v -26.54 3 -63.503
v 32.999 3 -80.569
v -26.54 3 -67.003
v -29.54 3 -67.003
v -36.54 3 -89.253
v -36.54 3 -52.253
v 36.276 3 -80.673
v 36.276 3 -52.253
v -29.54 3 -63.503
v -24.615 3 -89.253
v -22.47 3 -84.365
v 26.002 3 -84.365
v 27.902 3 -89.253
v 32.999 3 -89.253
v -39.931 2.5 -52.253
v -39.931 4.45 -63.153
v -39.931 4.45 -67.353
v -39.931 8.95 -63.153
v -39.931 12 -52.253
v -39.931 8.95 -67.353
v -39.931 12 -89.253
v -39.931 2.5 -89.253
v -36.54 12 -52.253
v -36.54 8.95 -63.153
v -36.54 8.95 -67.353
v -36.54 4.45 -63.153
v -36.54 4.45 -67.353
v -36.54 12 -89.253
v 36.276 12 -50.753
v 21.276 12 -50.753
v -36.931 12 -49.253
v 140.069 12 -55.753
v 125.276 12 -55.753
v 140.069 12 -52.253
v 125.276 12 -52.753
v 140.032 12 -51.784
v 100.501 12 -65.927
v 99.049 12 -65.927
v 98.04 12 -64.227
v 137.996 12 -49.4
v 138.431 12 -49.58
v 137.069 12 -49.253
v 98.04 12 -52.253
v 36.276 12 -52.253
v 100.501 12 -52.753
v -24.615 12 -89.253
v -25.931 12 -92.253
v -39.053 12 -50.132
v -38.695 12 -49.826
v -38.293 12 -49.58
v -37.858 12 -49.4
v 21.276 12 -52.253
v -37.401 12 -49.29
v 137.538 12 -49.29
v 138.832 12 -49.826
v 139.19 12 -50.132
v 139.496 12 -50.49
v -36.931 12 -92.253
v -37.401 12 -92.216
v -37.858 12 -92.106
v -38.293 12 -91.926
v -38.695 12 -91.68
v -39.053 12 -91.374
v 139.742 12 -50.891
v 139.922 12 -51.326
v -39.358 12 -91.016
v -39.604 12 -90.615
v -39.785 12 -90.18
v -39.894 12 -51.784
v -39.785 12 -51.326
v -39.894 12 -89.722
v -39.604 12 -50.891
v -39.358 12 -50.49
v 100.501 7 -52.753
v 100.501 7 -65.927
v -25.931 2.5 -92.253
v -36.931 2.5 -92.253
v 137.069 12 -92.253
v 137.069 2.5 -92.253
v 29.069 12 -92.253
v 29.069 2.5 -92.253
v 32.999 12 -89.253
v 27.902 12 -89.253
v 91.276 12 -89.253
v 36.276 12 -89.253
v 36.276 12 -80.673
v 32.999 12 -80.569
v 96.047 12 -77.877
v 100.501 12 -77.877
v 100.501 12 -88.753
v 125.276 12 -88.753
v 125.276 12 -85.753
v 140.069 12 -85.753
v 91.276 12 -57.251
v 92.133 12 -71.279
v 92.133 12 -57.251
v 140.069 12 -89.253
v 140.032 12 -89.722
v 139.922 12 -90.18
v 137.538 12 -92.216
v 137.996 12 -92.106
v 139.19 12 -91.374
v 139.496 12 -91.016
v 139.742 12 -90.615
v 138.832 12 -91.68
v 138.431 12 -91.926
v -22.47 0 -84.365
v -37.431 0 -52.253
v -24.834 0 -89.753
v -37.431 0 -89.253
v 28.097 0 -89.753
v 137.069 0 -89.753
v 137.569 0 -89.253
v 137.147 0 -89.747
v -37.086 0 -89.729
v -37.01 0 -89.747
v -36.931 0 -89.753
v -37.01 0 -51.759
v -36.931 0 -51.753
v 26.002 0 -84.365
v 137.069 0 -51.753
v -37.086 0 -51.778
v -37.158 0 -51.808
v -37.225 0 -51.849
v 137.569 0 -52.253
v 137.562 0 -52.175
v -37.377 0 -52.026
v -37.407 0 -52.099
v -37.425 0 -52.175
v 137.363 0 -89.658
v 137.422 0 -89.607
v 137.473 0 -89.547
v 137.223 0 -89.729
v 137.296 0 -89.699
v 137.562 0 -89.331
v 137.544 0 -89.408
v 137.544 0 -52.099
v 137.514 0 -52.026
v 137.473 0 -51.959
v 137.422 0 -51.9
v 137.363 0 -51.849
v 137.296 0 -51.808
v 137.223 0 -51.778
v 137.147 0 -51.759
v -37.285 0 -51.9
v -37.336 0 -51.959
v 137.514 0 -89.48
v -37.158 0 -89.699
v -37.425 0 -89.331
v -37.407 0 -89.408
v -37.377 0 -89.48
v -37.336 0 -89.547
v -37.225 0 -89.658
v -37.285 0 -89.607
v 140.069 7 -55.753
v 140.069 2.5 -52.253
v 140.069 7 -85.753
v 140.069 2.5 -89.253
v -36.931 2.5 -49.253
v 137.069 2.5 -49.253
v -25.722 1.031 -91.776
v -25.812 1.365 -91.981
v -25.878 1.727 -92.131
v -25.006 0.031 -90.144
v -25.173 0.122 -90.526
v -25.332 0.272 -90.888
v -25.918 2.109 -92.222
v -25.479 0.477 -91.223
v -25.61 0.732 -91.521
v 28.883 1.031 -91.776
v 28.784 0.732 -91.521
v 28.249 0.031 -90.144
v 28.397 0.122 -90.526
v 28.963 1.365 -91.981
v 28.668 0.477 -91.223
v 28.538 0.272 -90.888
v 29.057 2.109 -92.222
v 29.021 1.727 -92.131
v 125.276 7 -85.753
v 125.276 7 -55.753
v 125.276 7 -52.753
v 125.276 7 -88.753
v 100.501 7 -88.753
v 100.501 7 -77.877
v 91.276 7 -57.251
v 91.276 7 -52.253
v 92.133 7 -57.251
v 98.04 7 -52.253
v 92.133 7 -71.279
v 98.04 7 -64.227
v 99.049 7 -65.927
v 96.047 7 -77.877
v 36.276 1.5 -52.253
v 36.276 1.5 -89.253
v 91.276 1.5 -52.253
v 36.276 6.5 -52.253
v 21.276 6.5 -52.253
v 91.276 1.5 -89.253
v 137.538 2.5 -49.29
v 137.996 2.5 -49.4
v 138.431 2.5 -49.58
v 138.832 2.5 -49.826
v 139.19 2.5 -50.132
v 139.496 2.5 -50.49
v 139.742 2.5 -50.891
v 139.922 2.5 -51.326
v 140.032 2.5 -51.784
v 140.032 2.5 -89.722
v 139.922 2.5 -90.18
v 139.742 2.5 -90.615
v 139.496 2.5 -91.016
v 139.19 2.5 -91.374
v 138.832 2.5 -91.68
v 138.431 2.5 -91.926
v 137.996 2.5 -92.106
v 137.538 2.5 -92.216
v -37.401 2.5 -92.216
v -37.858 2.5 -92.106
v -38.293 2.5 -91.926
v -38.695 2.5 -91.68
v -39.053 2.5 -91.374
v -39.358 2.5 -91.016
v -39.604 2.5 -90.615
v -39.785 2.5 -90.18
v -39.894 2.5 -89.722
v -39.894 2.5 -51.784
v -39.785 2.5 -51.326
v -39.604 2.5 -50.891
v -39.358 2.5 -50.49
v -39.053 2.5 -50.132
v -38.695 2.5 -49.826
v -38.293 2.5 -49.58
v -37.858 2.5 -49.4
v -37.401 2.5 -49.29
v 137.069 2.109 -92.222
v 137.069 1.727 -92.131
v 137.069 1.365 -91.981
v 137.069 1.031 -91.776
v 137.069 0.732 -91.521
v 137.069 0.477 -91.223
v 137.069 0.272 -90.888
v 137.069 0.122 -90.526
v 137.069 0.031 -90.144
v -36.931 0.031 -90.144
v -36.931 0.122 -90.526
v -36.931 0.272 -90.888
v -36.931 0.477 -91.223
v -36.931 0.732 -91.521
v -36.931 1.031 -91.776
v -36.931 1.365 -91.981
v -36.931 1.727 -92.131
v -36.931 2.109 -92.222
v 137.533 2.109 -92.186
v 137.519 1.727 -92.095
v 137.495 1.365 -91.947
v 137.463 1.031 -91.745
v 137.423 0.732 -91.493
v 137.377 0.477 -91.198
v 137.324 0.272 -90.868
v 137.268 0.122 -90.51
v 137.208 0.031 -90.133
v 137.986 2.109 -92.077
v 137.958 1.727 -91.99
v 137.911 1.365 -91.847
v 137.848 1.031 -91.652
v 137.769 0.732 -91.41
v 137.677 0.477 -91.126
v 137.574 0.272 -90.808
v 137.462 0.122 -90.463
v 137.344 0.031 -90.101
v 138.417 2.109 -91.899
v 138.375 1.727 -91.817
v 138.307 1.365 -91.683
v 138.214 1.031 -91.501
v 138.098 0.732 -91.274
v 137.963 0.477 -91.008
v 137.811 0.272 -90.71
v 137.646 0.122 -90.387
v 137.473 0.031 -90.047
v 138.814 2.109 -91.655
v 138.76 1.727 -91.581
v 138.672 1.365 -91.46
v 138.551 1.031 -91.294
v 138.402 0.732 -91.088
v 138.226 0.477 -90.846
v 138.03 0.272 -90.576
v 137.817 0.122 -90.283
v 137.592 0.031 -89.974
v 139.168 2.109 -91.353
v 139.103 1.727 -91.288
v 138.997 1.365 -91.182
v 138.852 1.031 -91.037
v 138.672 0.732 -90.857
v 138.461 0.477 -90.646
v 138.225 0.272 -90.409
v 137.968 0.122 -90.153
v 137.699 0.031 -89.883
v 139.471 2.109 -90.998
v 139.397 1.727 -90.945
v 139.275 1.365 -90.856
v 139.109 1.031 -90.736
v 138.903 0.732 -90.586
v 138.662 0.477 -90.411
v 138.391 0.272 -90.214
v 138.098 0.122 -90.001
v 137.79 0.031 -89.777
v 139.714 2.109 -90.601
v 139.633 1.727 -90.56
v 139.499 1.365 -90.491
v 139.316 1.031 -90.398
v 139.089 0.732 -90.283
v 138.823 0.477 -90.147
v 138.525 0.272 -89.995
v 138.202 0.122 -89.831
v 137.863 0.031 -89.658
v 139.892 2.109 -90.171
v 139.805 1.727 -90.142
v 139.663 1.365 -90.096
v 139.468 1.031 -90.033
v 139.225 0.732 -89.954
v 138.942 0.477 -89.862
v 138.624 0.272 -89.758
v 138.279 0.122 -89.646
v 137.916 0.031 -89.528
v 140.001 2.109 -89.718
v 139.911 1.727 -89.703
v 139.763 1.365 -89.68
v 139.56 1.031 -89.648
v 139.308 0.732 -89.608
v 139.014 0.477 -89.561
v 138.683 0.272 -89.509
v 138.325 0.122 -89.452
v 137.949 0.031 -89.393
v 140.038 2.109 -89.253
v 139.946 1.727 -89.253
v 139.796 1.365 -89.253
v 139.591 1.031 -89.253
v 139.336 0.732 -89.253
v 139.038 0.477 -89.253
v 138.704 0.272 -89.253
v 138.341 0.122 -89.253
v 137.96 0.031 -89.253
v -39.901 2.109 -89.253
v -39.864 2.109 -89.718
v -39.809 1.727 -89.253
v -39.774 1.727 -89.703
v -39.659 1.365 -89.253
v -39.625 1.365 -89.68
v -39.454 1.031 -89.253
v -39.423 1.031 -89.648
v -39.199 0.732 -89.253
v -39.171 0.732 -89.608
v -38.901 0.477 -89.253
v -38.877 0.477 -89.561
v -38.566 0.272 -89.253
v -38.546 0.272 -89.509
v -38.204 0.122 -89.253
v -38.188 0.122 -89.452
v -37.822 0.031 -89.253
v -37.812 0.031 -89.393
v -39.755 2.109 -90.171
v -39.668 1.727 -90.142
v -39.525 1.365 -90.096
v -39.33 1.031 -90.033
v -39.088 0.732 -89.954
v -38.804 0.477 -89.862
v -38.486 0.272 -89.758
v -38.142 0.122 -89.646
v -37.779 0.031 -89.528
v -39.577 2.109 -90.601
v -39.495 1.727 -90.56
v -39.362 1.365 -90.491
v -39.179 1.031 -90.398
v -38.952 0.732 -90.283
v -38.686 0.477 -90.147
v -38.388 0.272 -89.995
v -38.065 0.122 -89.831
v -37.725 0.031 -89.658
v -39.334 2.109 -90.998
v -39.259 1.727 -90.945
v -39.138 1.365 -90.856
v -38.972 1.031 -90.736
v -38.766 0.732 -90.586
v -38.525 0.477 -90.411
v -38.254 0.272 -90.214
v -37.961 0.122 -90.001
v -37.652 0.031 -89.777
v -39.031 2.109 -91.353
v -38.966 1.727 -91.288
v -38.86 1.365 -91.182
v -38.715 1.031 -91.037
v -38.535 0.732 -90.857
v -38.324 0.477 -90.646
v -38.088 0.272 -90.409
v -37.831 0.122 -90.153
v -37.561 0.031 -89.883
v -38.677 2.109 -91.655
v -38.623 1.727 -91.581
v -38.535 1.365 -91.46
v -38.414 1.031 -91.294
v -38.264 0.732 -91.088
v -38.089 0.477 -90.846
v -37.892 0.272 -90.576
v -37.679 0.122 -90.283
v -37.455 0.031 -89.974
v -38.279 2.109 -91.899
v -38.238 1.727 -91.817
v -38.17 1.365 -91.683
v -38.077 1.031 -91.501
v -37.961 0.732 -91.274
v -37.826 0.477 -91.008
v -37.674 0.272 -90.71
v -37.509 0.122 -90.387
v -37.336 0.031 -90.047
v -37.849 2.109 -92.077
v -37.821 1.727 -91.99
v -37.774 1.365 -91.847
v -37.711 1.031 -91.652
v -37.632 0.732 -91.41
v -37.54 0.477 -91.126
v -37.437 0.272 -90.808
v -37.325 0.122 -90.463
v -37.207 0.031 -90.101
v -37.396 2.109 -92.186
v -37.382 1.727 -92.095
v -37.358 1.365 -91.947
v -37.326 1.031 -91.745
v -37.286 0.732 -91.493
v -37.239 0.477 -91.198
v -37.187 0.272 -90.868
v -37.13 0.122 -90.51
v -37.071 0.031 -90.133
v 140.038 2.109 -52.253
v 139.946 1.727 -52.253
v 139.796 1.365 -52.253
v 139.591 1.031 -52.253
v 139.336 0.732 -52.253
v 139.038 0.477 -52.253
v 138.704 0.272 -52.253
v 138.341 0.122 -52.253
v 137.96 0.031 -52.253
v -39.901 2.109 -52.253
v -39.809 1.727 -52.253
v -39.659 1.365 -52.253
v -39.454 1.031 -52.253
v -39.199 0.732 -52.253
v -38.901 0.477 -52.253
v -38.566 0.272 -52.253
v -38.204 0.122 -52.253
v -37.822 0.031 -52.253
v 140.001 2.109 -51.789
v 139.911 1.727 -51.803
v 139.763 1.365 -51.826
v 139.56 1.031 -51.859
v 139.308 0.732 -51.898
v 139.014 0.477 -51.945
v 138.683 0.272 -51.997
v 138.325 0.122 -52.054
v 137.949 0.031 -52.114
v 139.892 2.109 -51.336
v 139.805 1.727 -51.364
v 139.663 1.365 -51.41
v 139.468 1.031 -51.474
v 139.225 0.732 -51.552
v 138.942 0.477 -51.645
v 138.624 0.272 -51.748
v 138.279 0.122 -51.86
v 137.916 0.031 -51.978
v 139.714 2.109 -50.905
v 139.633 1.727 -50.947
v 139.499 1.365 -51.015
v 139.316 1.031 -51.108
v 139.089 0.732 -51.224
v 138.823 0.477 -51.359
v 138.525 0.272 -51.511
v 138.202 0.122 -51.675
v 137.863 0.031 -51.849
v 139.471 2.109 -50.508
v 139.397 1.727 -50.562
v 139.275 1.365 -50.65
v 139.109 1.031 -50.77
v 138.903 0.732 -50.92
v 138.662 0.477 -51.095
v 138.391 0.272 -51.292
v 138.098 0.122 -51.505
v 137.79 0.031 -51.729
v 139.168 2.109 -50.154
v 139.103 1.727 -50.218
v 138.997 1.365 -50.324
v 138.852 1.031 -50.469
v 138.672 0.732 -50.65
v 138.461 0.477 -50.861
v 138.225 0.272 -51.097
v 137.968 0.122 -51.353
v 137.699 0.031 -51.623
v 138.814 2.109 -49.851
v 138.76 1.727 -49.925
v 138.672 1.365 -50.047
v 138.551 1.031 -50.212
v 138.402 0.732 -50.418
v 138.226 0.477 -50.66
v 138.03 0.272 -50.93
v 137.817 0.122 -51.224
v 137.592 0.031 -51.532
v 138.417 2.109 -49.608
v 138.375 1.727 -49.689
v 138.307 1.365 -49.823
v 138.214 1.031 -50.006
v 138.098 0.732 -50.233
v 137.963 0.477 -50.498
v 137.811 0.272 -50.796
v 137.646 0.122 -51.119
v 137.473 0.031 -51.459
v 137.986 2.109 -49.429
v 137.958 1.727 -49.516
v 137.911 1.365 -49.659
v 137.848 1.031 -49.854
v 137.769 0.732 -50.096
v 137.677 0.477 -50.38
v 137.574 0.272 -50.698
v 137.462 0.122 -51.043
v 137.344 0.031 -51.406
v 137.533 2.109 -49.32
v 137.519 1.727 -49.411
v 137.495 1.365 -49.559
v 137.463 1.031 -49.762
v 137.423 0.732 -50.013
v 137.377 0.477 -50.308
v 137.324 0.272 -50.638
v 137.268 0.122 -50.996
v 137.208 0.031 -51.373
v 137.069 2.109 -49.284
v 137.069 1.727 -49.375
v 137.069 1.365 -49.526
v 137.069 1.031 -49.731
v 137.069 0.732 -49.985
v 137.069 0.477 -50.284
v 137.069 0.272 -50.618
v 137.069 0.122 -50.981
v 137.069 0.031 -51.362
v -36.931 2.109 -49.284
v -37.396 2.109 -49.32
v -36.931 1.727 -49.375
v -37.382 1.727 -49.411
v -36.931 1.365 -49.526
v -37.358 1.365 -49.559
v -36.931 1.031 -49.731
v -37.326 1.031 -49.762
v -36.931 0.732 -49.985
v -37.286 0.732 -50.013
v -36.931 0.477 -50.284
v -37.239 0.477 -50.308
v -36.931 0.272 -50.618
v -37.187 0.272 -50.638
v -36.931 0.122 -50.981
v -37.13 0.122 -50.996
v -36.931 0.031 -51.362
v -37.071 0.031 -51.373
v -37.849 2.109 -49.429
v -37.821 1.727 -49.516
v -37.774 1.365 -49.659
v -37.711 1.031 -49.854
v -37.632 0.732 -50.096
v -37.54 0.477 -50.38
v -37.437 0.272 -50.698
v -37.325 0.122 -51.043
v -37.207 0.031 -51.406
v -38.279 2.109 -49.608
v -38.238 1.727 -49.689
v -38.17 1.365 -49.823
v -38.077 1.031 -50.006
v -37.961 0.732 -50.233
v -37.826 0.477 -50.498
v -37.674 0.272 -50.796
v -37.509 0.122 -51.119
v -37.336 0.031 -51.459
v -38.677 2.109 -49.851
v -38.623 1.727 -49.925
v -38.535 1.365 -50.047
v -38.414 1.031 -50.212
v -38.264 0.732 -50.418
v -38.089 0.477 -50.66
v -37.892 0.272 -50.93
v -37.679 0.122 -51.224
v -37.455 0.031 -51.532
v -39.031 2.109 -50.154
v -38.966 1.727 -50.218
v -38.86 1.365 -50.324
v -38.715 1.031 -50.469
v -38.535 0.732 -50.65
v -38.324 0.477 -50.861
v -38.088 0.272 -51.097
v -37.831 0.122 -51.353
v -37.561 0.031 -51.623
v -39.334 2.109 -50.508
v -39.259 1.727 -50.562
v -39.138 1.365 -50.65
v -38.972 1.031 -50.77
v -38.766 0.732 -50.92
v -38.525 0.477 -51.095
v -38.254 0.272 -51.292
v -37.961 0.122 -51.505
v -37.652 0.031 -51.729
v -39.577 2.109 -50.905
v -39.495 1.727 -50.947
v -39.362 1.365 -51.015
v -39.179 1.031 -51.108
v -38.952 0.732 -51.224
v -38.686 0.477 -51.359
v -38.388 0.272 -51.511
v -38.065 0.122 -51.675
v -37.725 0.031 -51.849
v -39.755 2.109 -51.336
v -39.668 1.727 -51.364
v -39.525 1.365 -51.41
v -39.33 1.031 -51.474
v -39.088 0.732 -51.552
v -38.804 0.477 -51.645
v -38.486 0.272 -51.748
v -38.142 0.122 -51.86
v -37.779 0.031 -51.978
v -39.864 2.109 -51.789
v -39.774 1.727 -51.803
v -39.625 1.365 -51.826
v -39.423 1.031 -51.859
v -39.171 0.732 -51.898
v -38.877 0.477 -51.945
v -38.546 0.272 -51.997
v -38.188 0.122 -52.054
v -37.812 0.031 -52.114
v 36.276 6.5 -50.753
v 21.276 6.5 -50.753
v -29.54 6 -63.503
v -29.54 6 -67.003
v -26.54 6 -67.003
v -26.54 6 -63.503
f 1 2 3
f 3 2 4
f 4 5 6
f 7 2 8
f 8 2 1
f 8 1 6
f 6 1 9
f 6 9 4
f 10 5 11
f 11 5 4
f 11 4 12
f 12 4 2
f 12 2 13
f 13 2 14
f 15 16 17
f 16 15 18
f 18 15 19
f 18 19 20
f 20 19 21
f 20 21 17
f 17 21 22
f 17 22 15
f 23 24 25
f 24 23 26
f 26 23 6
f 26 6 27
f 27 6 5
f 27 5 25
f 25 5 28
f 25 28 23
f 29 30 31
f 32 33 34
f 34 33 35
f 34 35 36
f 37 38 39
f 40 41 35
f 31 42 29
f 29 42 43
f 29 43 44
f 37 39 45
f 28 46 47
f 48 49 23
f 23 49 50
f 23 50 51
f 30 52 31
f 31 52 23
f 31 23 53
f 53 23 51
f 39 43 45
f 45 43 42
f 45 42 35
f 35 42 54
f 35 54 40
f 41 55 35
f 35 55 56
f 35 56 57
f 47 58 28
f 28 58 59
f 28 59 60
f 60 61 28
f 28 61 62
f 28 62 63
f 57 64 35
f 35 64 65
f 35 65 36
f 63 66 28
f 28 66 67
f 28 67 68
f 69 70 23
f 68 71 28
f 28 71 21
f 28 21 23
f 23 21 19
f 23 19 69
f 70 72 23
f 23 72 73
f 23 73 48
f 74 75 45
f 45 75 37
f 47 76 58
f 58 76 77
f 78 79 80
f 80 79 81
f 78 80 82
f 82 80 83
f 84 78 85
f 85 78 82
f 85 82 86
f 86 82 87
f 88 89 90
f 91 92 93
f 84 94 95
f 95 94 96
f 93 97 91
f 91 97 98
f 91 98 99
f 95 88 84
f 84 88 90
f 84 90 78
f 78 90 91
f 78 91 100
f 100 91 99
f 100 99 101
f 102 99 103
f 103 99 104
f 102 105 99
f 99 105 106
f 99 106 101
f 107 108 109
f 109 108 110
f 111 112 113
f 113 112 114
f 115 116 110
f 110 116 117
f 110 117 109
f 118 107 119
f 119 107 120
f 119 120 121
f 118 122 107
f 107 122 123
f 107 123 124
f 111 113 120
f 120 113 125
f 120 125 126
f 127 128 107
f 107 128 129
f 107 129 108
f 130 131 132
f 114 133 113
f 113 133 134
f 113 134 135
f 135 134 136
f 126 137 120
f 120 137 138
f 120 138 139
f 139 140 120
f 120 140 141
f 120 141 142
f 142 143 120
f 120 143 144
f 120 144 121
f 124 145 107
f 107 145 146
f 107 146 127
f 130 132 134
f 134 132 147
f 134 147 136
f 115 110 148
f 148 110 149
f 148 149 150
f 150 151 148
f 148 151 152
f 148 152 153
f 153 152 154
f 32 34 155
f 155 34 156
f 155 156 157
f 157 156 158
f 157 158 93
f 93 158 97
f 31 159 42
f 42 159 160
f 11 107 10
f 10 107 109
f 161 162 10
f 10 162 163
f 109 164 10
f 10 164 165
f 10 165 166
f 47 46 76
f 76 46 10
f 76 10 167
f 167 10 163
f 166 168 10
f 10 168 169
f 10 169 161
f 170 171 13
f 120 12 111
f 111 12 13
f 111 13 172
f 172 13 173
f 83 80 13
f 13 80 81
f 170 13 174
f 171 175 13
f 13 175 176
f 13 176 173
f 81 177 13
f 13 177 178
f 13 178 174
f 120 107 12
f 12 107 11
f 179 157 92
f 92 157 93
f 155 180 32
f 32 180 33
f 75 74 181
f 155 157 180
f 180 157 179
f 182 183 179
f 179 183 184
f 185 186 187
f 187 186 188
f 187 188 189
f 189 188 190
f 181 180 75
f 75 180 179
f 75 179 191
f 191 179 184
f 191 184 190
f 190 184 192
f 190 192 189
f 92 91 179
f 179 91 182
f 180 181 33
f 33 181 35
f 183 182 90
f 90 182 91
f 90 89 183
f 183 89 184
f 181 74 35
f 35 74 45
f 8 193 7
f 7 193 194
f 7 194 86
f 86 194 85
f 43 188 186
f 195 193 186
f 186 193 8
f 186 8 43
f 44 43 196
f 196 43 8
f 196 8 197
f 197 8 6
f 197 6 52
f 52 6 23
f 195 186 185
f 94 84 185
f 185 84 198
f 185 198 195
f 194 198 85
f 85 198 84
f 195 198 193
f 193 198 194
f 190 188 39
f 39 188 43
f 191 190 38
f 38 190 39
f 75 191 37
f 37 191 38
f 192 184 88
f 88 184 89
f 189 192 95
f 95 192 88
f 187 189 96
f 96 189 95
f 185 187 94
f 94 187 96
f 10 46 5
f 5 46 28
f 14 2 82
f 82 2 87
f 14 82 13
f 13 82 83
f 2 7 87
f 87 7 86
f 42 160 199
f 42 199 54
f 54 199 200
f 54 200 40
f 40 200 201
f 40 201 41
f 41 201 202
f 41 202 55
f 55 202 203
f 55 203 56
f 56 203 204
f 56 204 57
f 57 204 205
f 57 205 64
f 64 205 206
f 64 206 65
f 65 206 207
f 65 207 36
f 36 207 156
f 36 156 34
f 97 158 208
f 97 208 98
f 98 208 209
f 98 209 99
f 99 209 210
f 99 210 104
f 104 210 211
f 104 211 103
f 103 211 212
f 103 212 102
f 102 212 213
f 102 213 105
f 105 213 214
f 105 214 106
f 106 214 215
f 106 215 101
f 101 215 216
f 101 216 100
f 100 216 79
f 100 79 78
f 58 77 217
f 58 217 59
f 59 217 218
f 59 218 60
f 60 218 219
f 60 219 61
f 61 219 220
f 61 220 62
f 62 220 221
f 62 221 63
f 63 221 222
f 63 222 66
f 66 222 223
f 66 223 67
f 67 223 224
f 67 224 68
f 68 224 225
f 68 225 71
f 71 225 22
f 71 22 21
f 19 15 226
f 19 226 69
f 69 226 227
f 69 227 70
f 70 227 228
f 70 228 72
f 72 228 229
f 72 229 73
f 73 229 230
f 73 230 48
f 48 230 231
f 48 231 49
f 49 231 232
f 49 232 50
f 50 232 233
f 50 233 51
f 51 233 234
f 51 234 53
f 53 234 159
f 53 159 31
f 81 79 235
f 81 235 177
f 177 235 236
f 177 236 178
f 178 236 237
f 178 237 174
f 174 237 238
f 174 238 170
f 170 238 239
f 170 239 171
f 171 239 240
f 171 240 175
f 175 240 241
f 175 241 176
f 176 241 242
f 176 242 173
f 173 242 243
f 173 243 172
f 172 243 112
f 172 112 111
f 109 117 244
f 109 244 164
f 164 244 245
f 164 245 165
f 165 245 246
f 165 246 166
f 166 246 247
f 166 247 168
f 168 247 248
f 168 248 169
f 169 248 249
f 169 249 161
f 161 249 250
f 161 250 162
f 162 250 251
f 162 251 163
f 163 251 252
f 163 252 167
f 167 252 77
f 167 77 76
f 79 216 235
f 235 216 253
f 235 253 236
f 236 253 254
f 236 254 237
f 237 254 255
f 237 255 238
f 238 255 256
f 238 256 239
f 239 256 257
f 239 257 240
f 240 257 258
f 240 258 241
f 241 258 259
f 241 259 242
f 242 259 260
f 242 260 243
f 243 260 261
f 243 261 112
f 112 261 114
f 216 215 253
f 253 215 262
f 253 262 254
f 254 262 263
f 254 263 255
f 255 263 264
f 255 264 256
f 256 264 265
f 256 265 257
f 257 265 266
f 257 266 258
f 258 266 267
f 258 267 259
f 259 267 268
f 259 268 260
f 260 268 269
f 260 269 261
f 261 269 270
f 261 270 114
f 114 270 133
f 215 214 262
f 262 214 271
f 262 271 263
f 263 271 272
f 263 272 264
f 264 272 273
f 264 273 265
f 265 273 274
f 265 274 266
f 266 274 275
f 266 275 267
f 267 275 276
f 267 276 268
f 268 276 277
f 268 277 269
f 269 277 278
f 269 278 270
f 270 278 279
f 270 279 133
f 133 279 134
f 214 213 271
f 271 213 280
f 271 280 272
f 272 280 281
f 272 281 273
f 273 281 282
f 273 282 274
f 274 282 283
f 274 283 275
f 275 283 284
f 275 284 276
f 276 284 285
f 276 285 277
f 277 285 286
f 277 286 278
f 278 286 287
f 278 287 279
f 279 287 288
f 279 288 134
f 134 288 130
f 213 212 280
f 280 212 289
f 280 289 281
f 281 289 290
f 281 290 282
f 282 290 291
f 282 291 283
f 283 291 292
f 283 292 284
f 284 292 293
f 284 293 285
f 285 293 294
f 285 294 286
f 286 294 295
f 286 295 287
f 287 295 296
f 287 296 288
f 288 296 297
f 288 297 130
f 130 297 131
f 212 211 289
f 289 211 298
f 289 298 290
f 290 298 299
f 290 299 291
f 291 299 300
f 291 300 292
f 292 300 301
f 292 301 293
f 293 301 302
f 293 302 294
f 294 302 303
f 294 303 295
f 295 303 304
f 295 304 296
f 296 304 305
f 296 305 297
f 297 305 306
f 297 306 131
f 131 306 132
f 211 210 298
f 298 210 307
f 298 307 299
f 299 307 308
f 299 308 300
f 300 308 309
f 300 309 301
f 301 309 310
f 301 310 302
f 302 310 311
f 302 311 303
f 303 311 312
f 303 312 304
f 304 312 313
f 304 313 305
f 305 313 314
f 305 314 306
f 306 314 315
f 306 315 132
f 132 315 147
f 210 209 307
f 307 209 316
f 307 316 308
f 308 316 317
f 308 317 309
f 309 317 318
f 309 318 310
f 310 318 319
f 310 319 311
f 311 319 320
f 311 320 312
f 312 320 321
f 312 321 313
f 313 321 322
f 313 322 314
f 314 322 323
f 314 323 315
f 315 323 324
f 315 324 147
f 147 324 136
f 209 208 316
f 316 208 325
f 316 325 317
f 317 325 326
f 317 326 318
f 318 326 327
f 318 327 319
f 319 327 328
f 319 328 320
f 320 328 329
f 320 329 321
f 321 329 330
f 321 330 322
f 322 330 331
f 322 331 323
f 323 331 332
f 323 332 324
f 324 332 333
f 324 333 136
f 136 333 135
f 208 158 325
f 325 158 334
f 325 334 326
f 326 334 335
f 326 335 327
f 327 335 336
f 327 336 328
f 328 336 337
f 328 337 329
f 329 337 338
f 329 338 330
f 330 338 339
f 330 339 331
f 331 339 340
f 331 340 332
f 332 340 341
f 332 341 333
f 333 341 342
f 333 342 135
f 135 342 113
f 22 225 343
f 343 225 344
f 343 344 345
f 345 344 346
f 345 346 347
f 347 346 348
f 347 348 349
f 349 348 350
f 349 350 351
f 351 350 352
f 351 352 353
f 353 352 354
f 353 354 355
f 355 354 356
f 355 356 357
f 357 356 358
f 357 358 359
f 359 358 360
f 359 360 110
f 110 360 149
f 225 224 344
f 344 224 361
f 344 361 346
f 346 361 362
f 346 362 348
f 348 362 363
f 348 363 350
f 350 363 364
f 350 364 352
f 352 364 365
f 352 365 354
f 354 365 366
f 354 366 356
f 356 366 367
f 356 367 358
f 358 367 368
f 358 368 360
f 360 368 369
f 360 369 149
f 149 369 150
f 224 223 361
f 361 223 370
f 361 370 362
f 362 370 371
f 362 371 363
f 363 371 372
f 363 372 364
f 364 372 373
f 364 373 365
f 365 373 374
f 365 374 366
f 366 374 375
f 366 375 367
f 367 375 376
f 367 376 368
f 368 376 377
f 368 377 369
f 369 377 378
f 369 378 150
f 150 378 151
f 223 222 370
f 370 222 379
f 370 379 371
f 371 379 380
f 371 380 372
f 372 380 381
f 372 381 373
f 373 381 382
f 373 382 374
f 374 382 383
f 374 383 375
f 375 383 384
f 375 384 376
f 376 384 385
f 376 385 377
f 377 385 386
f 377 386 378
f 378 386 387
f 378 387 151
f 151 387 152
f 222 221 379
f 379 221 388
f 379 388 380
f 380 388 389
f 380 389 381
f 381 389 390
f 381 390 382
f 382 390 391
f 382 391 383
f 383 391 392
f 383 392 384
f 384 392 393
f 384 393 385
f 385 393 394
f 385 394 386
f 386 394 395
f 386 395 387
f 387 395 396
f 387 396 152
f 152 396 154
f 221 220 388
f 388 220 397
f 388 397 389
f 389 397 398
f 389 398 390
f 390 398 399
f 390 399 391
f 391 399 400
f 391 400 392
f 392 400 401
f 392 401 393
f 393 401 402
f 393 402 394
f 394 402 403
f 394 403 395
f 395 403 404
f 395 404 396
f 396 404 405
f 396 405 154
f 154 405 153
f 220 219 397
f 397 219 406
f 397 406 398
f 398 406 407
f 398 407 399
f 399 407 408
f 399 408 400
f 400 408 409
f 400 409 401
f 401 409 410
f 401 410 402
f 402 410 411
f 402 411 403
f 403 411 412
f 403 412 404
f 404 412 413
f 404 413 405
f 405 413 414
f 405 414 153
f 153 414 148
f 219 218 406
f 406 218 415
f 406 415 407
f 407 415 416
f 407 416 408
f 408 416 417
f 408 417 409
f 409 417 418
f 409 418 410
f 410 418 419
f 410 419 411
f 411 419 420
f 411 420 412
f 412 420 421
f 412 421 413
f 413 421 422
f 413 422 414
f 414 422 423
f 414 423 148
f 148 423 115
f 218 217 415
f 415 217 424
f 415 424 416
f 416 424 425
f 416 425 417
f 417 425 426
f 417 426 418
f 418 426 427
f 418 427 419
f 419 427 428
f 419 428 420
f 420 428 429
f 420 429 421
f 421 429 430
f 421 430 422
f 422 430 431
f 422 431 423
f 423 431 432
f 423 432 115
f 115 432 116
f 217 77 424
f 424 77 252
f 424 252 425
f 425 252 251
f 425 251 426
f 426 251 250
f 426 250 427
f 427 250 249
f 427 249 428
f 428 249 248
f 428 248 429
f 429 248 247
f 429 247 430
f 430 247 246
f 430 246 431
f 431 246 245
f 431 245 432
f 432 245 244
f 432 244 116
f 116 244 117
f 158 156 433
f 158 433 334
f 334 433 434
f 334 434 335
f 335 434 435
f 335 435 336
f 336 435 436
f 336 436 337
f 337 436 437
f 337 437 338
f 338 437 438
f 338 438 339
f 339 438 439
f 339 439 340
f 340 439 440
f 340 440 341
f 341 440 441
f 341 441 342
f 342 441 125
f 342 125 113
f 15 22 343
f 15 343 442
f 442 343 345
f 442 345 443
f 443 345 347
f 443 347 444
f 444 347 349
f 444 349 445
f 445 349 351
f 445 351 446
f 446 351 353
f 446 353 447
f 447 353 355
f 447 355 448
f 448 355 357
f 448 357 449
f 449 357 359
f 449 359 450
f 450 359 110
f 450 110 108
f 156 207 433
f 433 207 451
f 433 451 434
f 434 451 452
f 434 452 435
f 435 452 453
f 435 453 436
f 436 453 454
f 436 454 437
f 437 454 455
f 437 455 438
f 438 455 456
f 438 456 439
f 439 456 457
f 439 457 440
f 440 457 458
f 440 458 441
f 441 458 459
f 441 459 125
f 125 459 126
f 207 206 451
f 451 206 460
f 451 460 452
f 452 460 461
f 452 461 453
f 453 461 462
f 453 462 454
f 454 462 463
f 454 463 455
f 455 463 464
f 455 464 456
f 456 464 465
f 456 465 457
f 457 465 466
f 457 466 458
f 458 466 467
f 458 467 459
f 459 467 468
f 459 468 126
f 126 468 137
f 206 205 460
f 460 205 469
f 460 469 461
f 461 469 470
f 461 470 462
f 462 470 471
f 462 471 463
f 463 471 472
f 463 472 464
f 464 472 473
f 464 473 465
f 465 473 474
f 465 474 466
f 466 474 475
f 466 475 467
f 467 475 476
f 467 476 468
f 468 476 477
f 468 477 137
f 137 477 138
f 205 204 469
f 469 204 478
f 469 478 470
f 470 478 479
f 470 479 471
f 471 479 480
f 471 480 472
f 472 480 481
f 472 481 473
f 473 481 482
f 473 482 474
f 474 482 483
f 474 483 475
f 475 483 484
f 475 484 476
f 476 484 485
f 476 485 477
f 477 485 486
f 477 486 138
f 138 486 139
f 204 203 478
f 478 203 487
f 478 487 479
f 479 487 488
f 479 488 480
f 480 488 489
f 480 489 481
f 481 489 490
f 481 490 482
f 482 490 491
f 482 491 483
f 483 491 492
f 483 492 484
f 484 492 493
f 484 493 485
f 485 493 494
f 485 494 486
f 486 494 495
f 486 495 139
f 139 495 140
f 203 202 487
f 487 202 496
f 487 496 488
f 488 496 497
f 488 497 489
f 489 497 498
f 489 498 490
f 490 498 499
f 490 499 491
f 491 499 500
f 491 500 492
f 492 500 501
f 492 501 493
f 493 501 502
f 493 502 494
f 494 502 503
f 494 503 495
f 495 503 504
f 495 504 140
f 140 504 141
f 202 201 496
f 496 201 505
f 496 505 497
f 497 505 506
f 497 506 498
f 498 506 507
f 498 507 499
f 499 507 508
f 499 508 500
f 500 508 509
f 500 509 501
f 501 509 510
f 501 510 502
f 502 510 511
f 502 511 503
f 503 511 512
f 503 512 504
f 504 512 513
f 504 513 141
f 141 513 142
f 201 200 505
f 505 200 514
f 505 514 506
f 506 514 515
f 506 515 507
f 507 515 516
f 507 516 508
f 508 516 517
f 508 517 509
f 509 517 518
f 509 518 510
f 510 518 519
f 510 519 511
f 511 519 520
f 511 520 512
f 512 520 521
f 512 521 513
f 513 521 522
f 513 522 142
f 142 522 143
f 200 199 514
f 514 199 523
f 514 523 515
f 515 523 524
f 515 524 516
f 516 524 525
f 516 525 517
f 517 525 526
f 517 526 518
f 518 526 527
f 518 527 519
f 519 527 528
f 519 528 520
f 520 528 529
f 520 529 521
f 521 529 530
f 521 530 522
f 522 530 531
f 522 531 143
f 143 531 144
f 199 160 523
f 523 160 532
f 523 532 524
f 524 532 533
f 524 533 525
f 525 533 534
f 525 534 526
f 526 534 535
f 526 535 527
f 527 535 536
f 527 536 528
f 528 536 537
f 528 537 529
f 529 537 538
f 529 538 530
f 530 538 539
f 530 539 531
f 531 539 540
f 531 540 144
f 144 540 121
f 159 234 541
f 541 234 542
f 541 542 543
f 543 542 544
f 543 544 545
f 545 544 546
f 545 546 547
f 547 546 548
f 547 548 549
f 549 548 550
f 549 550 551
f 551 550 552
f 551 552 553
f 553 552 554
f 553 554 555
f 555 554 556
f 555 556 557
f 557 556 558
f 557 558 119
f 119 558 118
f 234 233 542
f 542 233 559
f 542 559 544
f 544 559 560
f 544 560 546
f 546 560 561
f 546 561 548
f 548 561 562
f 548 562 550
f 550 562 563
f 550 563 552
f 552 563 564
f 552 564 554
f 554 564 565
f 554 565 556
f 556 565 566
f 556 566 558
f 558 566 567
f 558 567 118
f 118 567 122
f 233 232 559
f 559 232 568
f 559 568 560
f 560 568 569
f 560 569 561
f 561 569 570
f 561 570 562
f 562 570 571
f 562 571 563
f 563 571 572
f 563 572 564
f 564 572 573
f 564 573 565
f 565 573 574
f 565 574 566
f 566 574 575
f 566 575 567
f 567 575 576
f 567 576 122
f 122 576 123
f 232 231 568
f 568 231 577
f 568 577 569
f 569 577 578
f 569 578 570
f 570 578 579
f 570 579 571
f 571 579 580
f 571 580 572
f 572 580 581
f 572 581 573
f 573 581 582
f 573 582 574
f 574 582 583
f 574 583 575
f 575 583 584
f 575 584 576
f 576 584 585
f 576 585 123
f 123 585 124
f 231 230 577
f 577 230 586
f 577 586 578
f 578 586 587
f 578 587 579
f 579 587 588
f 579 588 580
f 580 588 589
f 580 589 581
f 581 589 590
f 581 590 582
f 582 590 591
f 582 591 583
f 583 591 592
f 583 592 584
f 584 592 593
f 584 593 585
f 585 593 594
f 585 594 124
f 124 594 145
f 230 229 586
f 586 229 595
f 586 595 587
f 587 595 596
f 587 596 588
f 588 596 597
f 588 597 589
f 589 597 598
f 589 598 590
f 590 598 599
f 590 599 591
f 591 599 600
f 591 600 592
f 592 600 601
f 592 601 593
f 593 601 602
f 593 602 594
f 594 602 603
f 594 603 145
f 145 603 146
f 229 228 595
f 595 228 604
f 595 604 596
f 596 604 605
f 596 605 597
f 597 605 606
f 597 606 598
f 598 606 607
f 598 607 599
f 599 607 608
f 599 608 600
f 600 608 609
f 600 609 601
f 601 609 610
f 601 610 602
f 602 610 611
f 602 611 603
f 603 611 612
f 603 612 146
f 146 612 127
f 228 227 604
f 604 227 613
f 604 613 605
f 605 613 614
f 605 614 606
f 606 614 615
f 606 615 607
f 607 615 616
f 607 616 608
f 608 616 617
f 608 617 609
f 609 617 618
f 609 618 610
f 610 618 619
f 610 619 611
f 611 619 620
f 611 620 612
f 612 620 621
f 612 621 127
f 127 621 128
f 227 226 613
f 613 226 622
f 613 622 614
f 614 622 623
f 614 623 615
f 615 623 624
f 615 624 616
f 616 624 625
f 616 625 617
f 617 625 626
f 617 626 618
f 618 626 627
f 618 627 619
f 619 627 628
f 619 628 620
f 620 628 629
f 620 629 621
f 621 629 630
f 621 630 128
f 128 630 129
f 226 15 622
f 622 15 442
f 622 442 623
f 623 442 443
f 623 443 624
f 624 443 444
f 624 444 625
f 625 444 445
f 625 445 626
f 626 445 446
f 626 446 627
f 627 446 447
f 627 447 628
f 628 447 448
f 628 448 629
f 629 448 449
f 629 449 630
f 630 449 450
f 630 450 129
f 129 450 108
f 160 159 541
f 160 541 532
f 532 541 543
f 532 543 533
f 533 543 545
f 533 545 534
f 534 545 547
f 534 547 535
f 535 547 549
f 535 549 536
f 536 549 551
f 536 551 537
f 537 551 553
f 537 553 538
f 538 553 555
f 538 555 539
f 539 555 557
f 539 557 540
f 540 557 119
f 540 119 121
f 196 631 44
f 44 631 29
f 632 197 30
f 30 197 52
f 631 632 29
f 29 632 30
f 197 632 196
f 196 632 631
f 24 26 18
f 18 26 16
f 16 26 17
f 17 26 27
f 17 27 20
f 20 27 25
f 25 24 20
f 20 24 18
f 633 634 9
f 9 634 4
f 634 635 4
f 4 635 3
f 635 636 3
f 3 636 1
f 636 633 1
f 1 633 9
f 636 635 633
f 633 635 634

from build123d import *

# Parameters (mm, degrees)
SKETCH_3_W           = 180
SKETCH_3_H           = 43
EXTRUDE_1_DEPTH      = 12
CUT_EXTRUDE_1_DEPTH  = 52
CUT_EXTRUDE_2_DEPTH  = 5
CUT_EXTRUDE_3_DEPTH  = 5
SKETCH_8_W           = 55
SKETCH_8_H           = 37
CUT_EXTRUDE_4_DEPTH  = 10.5
CUT_EXTRUDE_5_DEPTH  = 5
SKETCH_10_W          = 62.128790526
SKETCH_10_H          = 8.683746703
CUT_EXTRUDE_6_DEPTH  = 8
CUT_EXTRUDE_8_DEPTH  = 9
FILLET_3_R           = 3
FILLET_4_R           = 2.5
SKETCH_12_W          = 15
SKETCH_12_H          = 1.5
CUT_EXTRUDE_9_DEPTH  = 5.5
SKETCH_14_W          = 4.2
SKETCH_14_H          = 4.5
CUT_EXTRUDE_10_DEPTH = 5.5
SKETCH_15_W          = 3
SKETCH_15_H          = 3.5
EXTRUDE_2_DEPTH      = 3


with BuildPart() as part:
    # 草图3 → 凸台-拉伸1 (new body)
    with BuildSketch(Plane(origin=(0, 0, 0), x_dir=(1, 0, 0), z_dir=(0, 1, 0))):
        with Locations((50.068597249, 7.753123643)):
            Rectangle(SKETCH_3_W, SKETCH_3_H)
    extrude(amount=EXTRUDE_1_DEPTH)

    # 草图4 → 切除-拉伸1 (cut)
    with BuildSketch(Plane(origin=(0, 0, 0), x_dir=(1, 0, 0), z_dir=(0, 1, 0))):
        Polygon((-22.469613434, -5.858946979), (26.002261286, -5.858946979), (29.068597249, -13.746876357), (-25.931402751, -13.746876357), align=None)
    extrude(amount=CUT_EXTRUDE_1_DEPTH, mode=Mode.SUBTRACT)

    # 草图5 → 切除-拉伸2 (cut)
    with BuildSketch(Plane(origin=(0, 12, 0), x_dir=(1, 0, 0), z_dir=(0, 1, 0))):
        Polygon((140.068597249, 7.753123643), (140.068597249, 22.753123643), (125.276479966, 22.753123643), (125.276479966, -7.246876357), (140.068597249, -7.246876357), align=None)
    extrude(amount=-CUT_EXTRUDE_2_DEPTH, mode=Mode.SUBTRACT)

    # 草图7 → 切除-拉伸3 (cut)
    with BuildSketch(Plane(origin=(0, 12, 0), x_dir=(1, 0, 0), z_dir=(0, 1, 0))):
        Polygon((125.276479966, 7.753123643), (125.276479966, 25.753123643), (100.500825538, 25.753123643), (100.500825538, -10.246876357), (125.276479966, -10.246876357), align=None)
    extrude(amount=-CUT_EXTRUDE_3_DEPTH, mode=Mode.SUBTRACT)

    # 草图8 → 切除-拉伸4 (cut)
    with BuildSketch(Plane(origin=(0, 12, 0), x_dir=(1, 0, 0), z_dir=(0, 1, 0))):
        with Locations((63.776287419, 7.753123643)):
            Rectangle(SKETCH_8_W, SKETCH_8_H)
    extrude(amount=-CUT_EXTRUDE_4_DEPTH, mode=Mode.SUBTRACT)

    # 草图9 → 切除-拉伸5 (cut)
    with BuildSketch(Plane(origin=(0, 12, 0), x_dir=(1, 0, 0), z_dir=(0, 1, 0))):
        Polygon((91.276287419, 26.253123643), (98.039619719, 26.253123643), (98.039619719, 22.130591531), (98.039619719, 14.279735666), (99.048577369, 12.579380219), (100.500825538, 12.579380219), (100.500825538, 0.629591822), (96.047349228, 0.629591822), (92.132656028, 7.226865659), (92.132656028, 21.255120764), (91.276287419, 21.255120764), align=None)
    extrude(amount=-CUT_EXTRUDE_5_DEPTH, mode=Mode.SUBTRACT)

    # 草图10 → 切除-拉伸6 (cut)
    with BuildSketch(Plane(origin=(0, 12, 0), x_dir=(1, 0, 0), z_dir=(0, 1, 0))):
        with Locations((1.934159822, -6.405003006)):
            Rectangle(SKETCH_10_W, SKETCH_10_H)
    extrude(amount=-CUT_EXTRUDE_6_DEPTH, mode=Mode.SUBTRACT)

    # 草图11 → 切除-拉伸8 (cut)
    with BuildSketch(Plane(origin=(0, 12, 0), x_dir=(1, 0, 0), z_dir=(0, 1, 0))):
        Polygon((32.998555085, -10.746876357), (-36.5396752, -10.746876357), (-36.5396752, 26.253123643), (36.276287419, 26.253123643), (36.276287419, -2.167243749), (32.998555085, -2.063129654), align=None)
    extrude(amount=-CUT_EXTRUDE_8_DEPTH, mode=Mode.SUBTRACT)

    # 圆角3
    fillet_3_edges = [part.edges().sort_by_distance(p)[0] for p in [
        (-39.931402751, 6, -29.253123643),
        (140.068597249, 6, -29.253123643),
        (140.068597249, 6, 13.746876357),
        (-39.931402751, 6, 13.746876357),
    ]]
    fillet(fillet_3_edges, radius=FILLET_3_R)

    # 圆角4
    fillet_4_edges = [part.edges().sort_by_distance(p)[0] for p in [
        (83.068597249, 0, 13.746876357),
        (50.068597249, 0, -29.253123643),
        (-31.431402751, 0, 13.746876357),
        (-39.931402751, 0, -7.753123643),
        (140.068597249, 0, -7.753123643),
        (-39.052723094, 0, -28.374443987),
        (-39.052723094, 0, 12.8681967),
        (139.189917593, 0, 12.8681967),
        (139.189917593, 0, -28.374443987),
    ]]
    fillet(fillet_4_edges, radius=FILLET_4_R)

    # 草图12 → 切除-拉伸9 (cut)
    with BuildSketch(Plane(origin=(0, 12, 0), x_dir=(1, 0, 0), z_dir=(0, 1, 0))):
        with Locations((28.776287419, 27.003123643)):
            Rectangle(SKETCH_12_W, SKETCH_12_H)
    extrude(amount=-CUT_EXTRUDE_9_DEPTH, mode=Mode.SUBTRACT)

    # 草图14 → 切除-拉伸10 (cut)
    with BuildSketch(Plane(origin=(-36.5396752, 0, 0), x_dir=(0, 0, -1), z_dir=(1, 0, 0))):
        with Locations((13.253123643, 6.7)):
            Rectangle(SKETCH_14_W, SKETCH_14_H)
    extrude(amount=-CUT_EXTRUDE_10_DEPTH, mode=Mode.SUBTRACT)

    # 草图15 → 凸台-拉伸2 (add)
    with BuildSketch(Plane(origin=(0, 3, 0), x_dir=(1, 0, 0), z_dir=(0, 1, 0))):
        with Locations((-28.0396752, 13.253123643)):
            Rectangle(SKETCH_15_W, SKETCH_15_H)
    extrude(amount=EXTRUDE_2_DEPTH)


with BuildPart() as body_2:
    # 镜向3: mirrored copy
    add(part.part.mirror(Plane(origin=(0, 0, -39.253123643), x_dir=(1, 0, 0), z_dir=(0, 0, -1))))


solid = body_2.part
